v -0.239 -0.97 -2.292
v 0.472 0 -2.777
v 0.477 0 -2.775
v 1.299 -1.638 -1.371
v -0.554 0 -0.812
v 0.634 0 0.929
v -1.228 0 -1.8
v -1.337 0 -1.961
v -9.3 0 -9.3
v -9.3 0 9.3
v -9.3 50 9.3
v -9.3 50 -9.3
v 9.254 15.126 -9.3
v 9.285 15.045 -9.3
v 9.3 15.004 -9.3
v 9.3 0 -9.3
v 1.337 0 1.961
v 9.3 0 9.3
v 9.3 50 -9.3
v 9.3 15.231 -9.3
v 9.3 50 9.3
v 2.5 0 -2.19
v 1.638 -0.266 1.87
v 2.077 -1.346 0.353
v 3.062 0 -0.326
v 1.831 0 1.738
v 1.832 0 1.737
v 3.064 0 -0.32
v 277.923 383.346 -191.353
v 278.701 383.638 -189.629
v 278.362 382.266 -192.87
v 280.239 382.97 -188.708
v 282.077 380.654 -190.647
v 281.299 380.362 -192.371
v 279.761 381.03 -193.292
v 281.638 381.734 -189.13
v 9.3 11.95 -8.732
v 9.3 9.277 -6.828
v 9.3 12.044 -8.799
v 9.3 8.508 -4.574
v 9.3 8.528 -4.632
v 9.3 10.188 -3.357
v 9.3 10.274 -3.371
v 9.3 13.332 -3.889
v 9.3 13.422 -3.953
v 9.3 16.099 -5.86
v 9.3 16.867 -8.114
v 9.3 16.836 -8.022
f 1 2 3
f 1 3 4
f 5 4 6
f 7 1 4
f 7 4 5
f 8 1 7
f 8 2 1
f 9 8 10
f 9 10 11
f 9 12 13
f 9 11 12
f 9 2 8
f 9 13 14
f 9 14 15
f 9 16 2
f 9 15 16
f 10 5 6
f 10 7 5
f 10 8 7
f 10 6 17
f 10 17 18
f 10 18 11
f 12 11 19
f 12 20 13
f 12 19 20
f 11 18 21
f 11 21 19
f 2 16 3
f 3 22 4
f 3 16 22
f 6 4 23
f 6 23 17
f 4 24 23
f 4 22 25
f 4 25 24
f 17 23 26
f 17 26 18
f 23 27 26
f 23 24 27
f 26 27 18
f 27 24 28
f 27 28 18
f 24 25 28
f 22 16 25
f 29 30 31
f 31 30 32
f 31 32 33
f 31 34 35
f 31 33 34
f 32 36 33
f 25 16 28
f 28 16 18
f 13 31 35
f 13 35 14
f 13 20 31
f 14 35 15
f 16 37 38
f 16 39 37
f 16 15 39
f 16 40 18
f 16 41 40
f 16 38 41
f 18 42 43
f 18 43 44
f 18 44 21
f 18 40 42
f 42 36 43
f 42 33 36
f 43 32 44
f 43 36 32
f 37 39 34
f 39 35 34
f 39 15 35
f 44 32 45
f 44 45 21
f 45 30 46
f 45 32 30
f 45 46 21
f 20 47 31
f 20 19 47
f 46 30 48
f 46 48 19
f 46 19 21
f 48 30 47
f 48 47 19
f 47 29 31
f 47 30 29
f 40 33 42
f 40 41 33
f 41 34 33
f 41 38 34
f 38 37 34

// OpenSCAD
// file: lib/igus.scad
include <../../parameters.scad>


module efsm_12(){
    translate([0, 0, -(bearing_efsm_12_ag - bearing_efsm_12_B/2)]){
        translate([-bearing_efsm_12_h/2, -bearing_efsm_12_h/2, 0])
            cube([bearing_efsm_12_h, bearing_efsm_12_h, bearing_efsm_12_a1]);
        difference(){
            union(){
                intersection(){
                    translate([0,0, bearing_efsm_12_ag - bearing_efsm_12_B/2])
                        sphere(d=18, $fn = 50);
                    translate([0,0,-15])
                        cylinder(h = 30, d = 20);
                }
            }
            translate([0, 0, -15])
                cylinder(h=30, d=12);
        }
    }
}


module efsm_8(){
    translate([-33/2, -33/2, 0])
        cube([33, 33, 5.5]);
    translate([0,0,8.5])
        cylinder(h = 2, d1 = 18, d2 = 15);
    translate([0,0,6.5])
        cylinder(h = 7.94/2, d = 2);
    translate([0, 0, 6.5])
        sphere(r=3, $fn = 50);
}


module kstm_05(){
    import("../../STL/external/igus/KSTM_05_1.stl", convexity = 5);
}

module kstm_06(){
    import("../../STL/external/igus/KSTM_06_2.stl", convexity = 5);
}

module kstm_08(){
    import("../../STL/external/igus/KSTM_08_3.stl", convexity = 5);
}

module kstm_10(){
    import("../../STL/external/igus/KSTM_10_4.stl", convexity = 5);
}


data_kstm_center_height = [[5,7],[6,10],[8,10],[10,14]];
function kstm_center_height(type) = data_kstm_center_height[search(type, data_kstm_center_height)[0]][1];

data_kstm_hole_distance = [[5,25], [6,33], [8,33], [10,46], [12,46]];
function kstm_hole_distance(type) = data_kstm_hole_distance[search(type, data_kstm_hole_distance)[0]][1];

data_kstm_thickness = [[5,25], [6,33], [8,33], [10,46], [12,46]];
function kstm_thickness(type) = data_kstm_thickness[search(type, data_kstm_thickness)[0]][1];


translate([0, 0,  kstm_center_height(5)]) kstm_05();
translate([0, 20, kstm_center_height(6)]) kstm_06();
translate([0, 40, kstm_center_height(8)]) kstm_08();
translate([0, 60, kstm_center_height(10)]) kstm_10();
// main file
// drzak podvozku za podelnou tyc virniku

include <../parameters.scad>
use <lib/igus.scad>
use <lib/vector.scad>

//improving rendering speed.
draft = true;   // sets rendering quality to draft.

module 888_2013_old(front = true){
    tube_wall = 4;
    height = 40;
    crop = 0;
    kstm_ball_thickness = 12;
    shoulder_screw_length = 20+2;

    screw_length = 25-4;
    rotation = front ? chassis_pipe_angle_f_z : chassis_pipe_angle_r_z;

    intersection(){
    difference(){
        union(){

            translate([20, 0, 0])
                scale([1, 1.3, 1])
                    cylinder(d=tube_for_undercarriage_outer_diameter+2*tube_wall, h = height + crop, $fn = 80);

            hull(){
                translate([2013_pipe_offset[2], 0, crop-15])
                    scale([1, 1.3, 1])
                        cylinder(d=tube_for_undercarriage_outer_diameter+2*tube_wall, h = height - crop + 15 - global_clearance, , $fn = 80);
                translate([0, 0, 0])
                    rotate([90 + rotation, 0, 0])
                        cylinder(d = 24, h = shoulder_screw_length+8, center = true, $fn = 60);
            }
        }

        translate([2013_pipe_offset[2], 0, 0])
            cylinder(d=tube_for_undercarriage_outer_diameter, h = 100, $fn = 60, center = true);

        %translate([2013_pipe_offset[2], 0, 0])
            cylinder(d=tube_for_undercarriage_outer_diameter, h = 500, $fn = 30);

        translate([2013_pipe_offset[2], 0, 10]){
            rotate([90, 0, 0])
                cylinder(d = M3_screw_diameter, h = 50, center = true, $fn = 60);
            rotate([90, 0, 0])
                translate([0, 0, screw_length/2]) cylinder(d = M3_nut_diameter, h = 50, $fn = 60);
            rotate([90, 0, 0])
                translate([0, 0, -screw_length/2-50]) cylinder(d = M3_nut_diameter, h = 50, $fn = 6);
        }

        translate([2013_pipe_offset[2], 0, 10 + 20]){
            rotate([90, 0, 0])
                cylinder(d = M3_screw_diameter, h = 50, center = true, $fn = 60);
            rotate([90, 0, 0])
                translate([0, 0, screw_length/2]) cylinder(d = M3_nut_diameter, h = 50, $fn = 60);
            rotate([90, 0, 0])
                translate([0, 0, -screw_length/2-50]) cylinder(d = M3_nut_diameter, h = 50, $fn = 6);
        }


        rotate([rotation, 0, 0]){
            rotate([90, 0, 0])
                cylinder(d = M8_screw_diameter, h = 50, center = true, $fn = 60);

            rotate([-90, 0, 0])
                translate([0, 0, shoulder_screw_length/2])
                    cylinder(d = 14, h = 50, center = false, $fn =60);

            rotate([90, 30, 0])
                translate([0, 0, shoulder_screw_length/2])
                    cylinder(d = M6_nut_diameter, h = 50, center = false, $fn =6);

            translate([-2, 0, 0]) cube([25, kstm_ball_thickness, 100], center = true);
        }
    }

    rotate([0, -30, 0])
    translate([0, 0, 250 + crop])
        rotate([rotation, 0, 0])
            cube(500, center = true);
    }
}



module 888_2013(front = true){
    tube_wall = 4;
    height = 40;
    crop = 0;
    kstm_ball_thickness = 12;
    shoulder_screw_length = 20+2;

    length = 50;
    screw_length = 25-4;
    baselength = front ? chassis_pipe_baselength_f : -chassis_pipe_baselength_r;


    difference(){
        union(){
            translate([-tube_for_undercarriage_outer_diameter/2-tube_wall, 0, -tube_for_undercarriage_outer_diameter/2 -tube_wall])
                cube([tube_for_undercarriage_outer_diameter+2*tube_wall, length, tube_for_undercarriage_outer_diameter+2*tube_wall]);

            orientate([chassis_height, chassis_pipe_wheelbase, -chassis_pipe_wheelbase/2])
                //rotate([0, 90, 0])
                    cylinder(d = 5, h = mod([chassis_height, chassis_pipe_wheelbase, -chassis_pipe_wheelbase/2]));
        }

    }


}



//rotate([-chassis_top_bearing_rotation[2], 0, 0])
    888_2013(false);

//888_2013_drillhelper();
